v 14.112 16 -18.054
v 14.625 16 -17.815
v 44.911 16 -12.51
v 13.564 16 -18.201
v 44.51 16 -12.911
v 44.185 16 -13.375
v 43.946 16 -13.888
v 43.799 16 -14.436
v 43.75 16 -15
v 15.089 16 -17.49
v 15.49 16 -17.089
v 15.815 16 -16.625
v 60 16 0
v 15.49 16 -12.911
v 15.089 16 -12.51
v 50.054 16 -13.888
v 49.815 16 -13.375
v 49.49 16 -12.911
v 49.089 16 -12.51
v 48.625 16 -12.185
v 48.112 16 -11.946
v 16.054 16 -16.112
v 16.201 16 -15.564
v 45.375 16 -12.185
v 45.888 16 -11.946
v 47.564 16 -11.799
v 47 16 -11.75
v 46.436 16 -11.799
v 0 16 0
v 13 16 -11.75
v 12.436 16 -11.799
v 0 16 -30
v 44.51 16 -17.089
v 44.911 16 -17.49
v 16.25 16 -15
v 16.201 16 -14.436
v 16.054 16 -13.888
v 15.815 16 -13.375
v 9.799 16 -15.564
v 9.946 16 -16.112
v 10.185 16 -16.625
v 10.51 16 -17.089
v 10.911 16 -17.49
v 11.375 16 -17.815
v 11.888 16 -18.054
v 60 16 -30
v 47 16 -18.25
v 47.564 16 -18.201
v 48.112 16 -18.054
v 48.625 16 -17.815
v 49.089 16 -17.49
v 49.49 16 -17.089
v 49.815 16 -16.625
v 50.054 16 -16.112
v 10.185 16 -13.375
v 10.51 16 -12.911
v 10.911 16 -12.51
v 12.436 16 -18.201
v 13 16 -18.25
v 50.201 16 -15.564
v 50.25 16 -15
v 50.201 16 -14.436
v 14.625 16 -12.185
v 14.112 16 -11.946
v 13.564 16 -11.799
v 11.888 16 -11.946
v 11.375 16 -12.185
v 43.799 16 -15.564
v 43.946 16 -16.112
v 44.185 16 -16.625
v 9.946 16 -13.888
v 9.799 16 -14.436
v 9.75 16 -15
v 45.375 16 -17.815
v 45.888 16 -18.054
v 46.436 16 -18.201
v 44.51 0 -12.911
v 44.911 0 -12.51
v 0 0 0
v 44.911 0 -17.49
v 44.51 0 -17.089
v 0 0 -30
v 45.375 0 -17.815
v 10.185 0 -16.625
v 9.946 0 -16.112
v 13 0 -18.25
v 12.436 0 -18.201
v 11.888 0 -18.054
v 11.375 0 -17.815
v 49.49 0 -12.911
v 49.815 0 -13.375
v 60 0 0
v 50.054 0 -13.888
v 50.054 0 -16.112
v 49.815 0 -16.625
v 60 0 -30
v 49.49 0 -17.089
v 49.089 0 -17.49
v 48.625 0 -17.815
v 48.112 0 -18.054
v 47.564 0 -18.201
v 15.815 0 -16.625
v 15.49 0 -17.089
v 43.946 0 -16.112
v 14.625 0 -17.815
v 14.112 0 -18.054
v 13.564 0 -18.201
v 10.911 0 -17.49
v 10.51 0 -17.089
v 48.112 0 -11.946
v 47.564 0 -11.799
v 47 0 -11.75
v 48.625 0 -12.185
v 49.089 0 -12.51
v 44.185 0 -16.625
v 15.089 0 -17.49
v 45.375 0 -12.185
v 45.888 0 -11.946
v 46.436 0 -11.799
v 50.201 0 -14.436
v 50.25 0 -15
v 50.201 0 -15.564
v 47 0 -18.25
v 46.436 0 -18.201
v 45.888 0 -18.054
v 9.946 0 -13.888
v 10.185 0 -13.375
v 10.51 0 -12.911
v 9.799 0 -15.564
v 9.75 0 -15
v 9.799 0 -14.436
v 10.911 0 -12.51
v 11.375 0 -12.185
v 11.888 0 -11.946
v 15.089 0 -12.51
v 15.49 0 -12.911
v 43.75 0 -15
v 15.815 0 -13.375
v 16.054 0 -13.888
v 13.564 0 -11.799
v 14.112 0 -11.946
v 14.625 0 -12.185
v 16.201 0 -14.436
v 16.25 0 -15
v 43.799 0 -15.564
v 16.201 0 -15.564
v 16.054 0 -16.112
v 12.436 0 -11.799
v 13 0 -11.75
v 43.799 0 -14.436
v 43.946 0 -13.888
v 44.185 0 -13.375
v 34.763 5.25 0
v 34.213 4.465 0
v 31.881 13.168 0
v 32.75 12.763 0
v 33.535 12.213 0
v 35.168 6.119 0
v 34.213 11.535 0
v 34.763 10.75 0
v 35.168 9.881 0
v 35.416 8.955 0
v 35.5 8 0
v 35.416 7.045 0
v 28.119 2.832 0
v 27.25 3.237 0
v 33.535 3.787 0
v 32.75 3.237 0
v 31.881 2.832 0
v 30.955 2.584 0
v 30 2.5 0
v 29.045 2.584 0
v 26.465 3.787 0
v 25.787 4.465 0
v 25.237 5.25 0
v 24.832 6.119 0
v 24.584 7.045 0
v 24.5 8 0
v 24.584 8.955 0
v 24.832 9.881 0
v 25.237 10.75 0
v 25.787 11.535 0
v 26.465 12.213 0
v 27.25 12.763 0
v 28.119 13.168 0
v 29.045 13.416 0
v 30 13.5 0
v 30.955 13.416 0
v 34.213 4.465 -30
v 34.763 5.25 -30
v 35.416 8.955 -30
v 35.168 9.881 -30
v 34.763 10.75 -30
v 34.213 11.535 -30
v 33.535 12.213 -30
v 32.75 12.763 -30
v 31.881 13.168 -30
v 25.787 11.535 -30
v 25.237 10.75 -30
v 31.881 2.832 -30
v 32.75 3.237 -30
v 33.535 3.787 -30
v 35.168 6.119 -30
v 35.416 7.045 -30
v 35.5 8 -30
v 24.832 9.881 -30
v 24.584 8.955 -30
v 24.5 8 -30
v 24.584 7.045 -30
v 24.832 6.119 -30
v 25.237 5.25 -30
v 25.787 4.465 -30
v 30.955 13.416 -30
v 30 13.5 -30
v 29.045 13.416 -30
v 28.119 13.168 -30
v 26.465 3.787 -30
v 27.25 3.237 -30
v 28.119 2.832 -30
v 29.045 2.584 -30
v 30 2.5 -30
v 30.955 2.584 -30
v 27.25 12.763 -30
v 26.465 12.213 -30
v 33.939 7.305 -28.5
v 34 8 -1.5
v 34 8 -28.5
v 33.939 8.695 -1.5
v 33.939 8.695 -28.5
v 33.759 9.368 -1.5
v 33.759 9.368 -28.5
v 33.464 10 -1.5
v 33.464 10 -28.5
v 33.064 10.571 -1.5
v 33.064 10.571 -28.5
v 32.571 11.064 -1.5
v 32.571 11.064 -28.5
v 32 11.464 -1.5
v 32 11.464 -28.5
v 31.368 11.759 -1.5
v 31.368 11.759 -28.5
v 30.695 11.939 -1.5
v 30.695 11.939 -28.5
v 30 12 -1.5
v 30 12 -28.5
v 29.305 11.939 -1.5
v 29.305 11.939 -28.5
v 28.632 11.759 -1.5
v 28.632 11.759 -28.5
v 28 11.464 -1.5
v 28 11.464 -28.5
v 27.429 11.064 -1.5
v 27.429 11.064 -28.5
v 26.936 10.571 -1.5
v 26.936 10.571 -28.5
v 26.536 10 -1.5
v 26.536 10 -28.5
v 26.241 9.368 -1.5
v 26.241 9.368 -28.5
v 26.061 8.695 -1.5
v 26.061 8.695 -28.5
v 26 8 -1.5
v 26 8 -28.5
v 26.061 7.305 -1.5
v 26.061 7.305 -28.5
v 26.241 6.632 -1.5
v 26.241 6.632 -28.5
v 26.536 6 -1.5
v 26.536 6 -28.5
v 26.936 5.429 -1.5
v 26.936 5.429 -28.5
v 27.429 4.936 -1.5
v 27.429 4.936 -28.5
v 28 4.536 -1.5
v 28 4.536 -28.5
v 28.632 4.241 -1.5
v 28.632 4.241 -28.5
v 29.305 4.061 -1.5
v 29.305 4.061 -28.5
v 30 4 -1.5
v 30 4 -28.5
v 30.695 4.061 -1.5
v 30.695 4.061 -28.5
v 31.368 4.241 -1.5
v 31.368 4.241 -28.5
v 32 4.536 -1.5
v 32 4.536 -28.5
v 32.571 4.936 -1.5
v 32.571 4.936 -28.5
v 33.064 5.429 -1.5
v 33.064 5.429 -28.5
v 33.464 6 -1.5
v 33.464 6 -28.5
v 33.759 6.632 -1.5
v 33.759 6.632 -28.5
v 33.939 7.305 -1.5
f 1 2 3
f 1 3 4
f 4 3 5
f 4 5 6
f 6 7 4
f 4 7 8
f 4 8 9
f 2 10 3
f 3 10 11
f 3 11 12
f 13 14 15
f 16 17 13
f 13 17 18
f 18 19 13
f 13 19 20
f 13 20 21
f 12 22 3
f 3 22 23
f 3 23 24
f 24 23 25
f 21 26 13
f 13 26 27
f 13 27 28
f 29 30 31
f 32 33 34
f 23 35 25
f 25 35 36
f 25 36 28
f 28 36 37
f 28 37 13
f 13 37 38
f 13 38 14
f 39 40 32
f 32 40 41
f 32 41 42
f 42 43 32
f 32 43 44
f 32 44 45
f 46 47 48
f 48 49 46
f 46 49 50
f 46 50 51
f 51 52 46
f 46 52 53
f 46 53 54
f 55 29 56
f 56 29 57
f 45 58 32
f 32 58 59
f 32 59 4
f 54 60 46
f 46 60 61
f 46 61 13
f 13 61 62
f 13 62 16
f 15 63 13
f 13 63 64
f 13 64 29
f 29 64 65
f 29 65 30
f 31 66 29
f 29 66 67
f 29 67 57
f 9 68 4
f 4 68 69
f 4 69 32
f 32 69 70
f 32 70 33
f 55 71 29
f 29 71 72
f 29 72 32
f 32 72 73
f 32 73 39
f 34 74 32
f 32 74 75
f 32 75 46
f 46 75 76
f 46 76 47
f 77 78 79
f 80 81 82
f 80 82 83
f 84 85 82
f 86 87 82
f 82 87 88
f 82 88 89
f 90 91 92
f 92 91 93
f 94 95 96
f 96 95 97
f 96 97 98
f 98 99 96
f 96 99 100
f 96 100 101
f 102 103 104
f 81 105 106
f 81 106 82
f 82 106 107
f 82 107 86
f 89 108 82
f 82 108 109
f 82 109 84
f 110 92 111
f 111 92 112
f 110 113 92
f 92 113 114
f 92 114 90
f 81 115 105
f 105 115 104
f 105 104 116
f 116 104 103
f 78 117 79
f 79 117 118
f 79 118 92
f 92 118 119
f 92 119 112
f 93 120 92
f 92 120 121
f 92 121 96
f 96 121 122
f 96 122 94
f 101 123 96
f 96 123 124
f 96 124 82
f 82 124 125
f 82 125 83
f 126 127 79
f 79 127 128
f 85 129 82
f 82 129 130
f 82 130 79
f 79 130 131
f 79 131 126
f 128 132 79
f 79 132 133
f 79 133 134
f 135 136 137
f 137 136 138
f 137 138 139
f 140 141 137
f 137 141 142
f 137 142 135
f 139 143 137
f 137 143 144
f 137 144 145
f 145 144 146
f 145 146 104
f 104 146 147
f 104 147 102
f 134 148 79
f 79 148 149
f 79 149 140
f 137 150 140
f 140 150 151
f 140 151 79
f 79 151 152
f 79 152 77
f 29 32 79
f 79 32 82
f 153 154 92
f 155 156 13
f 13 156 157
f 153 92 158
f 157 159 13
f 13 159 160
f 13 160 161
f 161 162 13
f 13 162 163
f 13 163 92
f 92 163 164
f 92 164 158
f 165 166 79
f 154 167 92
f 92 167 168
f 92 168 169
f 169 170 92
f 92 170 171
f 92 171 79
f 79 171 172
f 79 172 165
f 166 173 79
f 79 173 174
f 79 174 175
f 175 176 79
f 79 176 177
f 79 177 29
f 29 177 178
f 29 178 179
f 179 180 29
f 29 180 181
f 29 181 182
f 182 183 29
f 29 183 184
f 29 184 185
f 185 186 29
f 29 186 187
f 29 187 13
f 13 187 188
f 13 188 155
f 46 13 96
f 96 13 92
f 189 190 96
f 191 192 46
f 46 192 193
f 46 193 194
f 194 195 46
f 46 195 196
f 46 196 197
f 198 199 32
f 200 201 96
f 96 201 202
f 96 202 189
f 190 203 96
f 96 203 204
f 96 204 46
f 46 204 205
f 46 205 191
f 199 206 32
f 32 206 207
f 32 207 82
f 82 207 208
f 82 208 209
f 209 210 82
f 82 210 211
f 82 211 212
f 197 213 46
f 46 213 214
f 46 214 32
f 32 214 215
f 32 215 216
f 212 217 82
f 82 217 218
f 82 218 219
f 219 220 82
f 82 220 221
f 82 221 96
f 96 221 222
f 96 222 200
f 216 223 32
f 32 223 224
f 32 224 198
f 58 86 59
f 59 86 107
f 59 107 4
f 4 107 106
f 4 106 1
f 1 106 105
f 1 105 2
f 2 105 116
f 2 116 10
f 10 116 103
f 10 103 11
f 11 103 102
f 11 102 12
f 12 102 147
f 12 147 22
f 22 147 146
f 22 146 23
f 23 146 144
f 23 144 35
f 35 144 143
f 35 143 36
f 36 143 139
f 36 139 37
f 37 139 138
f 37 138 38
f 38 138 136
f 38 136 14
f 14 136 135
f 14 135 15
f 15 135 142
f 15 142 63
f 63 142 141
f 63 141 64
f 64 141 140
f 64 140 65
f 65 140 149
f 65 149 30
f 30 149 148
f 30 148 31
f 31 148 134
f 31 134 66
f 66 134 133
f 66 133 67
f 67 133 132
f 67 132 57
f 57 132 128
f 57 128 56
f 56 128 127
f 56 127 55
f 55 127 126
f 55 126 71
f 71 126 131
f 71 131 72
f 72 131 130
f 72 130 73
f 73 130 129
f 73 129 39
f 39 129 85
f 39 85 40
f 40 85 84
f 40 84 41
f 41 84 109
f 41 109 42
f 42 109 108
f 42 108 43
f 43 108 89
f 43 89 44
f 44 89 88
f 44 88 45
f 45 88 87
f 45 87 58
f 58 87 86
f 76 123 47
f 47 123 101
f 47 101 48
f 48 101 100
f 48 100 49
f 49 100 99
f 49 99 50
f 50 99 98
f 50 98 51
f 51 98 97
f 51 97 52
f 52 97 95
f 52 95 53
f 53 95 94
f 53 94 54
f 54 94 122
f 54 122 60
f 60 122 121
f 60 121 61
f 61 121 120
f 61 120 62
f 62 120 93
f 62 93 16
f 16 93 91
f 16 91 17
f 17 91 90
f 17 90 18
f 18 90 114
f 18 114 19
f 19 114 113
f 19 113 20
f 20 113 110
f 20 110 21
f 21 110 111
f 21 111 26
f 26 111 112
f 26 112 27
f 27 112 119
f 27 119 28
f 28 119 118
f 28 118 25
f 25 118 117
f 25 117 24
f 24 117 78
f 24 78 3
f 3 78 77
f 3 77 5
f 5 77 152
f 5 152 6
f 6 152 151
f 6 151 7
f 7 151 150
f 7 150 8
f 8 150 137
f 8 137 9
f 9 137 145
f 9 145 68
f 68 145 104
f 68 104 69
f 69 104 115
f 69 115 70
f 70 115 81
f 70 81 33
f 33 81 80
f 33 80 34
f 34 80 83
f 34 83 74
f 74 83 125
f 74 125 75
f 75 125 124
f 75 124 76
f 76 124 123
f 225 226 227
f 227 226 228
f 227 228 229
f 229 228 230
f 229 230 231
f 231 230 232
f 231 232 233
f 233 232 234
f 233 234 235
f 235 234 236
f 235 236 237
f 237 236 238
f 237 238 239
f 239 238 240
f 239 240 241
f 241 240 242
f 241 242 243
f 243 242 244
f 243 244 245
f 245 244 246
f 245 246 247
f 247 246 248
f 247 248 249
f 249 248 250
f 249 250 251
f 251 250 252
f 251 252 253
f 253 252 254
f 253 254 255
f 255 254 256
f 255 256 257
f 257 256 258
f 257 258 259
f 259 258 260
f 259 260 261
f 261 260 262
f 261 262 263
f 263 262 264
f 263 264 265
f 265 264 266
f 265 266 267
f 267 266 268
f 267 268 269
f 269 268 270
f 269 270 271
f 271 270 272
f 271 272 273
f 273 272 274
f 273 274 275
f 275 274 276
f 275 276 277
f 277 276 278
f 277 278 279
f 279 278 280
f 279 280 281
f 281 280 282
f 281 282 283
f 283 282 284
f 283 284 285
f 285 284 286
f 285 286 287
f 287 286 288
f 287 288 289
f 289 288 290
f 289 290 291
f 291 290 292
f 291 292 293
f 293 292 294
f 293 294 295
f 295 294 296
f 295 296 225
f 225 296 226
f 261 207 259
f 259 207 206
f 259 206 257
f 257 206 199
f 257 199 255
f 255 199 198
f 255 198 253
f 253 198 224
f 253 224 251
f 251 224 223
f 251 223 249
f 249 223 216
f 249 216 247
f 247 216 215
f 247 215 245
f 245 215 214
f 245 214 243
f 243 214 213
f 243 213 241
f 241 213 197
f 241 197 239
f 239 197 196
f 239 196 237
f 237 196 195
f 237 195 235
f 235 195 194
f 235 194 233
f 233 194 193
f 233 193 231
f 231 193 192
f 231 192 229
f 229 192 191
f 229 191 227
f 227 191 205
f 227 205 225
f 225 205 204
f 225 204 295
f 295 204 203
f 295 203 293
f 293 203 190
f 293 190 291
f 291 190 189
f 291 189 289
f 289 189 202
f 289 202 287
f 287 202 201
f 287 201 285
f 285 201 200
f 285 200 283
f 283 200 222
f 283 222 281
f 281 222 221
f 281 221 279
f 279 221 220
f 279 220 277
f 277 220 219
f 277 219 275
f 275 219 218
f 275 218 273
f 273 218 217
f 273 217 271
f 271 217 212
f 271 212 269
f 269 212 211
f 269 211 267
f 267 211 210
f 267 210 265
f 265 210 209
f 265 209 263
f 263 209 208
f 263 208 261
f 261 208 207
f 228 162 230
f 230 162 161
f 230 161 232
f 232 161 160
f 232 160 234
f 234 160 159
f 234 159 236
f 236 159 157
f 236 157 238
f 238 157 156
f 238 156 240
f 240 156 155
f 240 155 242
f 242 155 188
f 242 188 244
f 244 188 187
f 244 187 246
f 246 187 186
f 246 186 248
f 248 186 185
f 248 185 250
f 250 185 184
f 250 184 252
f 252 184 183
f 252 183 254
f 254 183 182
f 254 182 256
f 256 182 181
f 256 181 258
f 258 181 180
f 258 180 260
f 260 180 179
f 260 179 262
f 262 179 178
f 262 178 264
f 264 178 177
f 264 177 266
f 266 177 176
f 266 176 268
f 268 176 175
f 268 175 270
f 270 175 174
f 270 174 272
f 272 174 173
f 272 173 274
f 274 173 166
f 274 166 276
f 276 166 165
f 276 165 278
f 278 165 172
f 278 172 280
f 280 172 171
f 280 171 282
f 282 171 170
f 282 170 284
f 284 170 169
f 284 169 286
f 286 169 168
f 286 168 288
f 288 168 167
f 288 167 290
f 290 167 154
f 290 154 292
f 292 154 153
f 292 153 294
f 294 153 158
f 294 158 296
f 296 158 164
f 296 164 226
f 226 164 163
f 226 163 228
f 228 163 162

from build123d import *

# Parameters (mm, degrees)
SKETCH1_W           = 60
SKETCH1_H           = 30
SKETCH1_R           = 3.25
BOSS_EXTRUDE1_DEPTH = 16
SKETCH2_R           = 4
CUT_EXTRUDE1_DEPTH  = 31
CHAMFER1_SIZE       = 1.5


with BuildPart() as part:
    # Sketch1 → Boss-Extrude1 (new body)
    with BuildSketch(Plane(origin=(0, 0, 0), x_dir=(1, 0, 0), z_dir=(0, 1, 0))):
        with Locations((30, 15)):
            Rectangle(SKETCH1_W, SKETCH1_H)
        with Locations((13, 15)):
            Circle(SKETCH1_R, mode=Mode.SUBTRACT)
        with Locations((47, 15)):
            Circle(SKETCH1_R, mode=Mode.SUBTRACT)
    extrude(amount=BOSS_EXTRUDE1_DEPTH)

    # Sketch2 → Cut-Extrude1 (cut, through all)
    with BuildSketch(Plane.XY):
        with Locations((30, 8)):
            Circle(SKETCH2_R)
    extrude(amount=-CUT_EXTRUDE1_DEPTH, mode=Mode.SUBTRACT)

    # Chamfer1
    chamfer1_edges = [part.edges().sort_by_distance(p)[0] for p in [
        (26, 8, -30),
        (26, 8, 0),
    ]]
    chamfer(chamfer1_edges, length=CHAMFER1_SIZE)


solid = part.part
